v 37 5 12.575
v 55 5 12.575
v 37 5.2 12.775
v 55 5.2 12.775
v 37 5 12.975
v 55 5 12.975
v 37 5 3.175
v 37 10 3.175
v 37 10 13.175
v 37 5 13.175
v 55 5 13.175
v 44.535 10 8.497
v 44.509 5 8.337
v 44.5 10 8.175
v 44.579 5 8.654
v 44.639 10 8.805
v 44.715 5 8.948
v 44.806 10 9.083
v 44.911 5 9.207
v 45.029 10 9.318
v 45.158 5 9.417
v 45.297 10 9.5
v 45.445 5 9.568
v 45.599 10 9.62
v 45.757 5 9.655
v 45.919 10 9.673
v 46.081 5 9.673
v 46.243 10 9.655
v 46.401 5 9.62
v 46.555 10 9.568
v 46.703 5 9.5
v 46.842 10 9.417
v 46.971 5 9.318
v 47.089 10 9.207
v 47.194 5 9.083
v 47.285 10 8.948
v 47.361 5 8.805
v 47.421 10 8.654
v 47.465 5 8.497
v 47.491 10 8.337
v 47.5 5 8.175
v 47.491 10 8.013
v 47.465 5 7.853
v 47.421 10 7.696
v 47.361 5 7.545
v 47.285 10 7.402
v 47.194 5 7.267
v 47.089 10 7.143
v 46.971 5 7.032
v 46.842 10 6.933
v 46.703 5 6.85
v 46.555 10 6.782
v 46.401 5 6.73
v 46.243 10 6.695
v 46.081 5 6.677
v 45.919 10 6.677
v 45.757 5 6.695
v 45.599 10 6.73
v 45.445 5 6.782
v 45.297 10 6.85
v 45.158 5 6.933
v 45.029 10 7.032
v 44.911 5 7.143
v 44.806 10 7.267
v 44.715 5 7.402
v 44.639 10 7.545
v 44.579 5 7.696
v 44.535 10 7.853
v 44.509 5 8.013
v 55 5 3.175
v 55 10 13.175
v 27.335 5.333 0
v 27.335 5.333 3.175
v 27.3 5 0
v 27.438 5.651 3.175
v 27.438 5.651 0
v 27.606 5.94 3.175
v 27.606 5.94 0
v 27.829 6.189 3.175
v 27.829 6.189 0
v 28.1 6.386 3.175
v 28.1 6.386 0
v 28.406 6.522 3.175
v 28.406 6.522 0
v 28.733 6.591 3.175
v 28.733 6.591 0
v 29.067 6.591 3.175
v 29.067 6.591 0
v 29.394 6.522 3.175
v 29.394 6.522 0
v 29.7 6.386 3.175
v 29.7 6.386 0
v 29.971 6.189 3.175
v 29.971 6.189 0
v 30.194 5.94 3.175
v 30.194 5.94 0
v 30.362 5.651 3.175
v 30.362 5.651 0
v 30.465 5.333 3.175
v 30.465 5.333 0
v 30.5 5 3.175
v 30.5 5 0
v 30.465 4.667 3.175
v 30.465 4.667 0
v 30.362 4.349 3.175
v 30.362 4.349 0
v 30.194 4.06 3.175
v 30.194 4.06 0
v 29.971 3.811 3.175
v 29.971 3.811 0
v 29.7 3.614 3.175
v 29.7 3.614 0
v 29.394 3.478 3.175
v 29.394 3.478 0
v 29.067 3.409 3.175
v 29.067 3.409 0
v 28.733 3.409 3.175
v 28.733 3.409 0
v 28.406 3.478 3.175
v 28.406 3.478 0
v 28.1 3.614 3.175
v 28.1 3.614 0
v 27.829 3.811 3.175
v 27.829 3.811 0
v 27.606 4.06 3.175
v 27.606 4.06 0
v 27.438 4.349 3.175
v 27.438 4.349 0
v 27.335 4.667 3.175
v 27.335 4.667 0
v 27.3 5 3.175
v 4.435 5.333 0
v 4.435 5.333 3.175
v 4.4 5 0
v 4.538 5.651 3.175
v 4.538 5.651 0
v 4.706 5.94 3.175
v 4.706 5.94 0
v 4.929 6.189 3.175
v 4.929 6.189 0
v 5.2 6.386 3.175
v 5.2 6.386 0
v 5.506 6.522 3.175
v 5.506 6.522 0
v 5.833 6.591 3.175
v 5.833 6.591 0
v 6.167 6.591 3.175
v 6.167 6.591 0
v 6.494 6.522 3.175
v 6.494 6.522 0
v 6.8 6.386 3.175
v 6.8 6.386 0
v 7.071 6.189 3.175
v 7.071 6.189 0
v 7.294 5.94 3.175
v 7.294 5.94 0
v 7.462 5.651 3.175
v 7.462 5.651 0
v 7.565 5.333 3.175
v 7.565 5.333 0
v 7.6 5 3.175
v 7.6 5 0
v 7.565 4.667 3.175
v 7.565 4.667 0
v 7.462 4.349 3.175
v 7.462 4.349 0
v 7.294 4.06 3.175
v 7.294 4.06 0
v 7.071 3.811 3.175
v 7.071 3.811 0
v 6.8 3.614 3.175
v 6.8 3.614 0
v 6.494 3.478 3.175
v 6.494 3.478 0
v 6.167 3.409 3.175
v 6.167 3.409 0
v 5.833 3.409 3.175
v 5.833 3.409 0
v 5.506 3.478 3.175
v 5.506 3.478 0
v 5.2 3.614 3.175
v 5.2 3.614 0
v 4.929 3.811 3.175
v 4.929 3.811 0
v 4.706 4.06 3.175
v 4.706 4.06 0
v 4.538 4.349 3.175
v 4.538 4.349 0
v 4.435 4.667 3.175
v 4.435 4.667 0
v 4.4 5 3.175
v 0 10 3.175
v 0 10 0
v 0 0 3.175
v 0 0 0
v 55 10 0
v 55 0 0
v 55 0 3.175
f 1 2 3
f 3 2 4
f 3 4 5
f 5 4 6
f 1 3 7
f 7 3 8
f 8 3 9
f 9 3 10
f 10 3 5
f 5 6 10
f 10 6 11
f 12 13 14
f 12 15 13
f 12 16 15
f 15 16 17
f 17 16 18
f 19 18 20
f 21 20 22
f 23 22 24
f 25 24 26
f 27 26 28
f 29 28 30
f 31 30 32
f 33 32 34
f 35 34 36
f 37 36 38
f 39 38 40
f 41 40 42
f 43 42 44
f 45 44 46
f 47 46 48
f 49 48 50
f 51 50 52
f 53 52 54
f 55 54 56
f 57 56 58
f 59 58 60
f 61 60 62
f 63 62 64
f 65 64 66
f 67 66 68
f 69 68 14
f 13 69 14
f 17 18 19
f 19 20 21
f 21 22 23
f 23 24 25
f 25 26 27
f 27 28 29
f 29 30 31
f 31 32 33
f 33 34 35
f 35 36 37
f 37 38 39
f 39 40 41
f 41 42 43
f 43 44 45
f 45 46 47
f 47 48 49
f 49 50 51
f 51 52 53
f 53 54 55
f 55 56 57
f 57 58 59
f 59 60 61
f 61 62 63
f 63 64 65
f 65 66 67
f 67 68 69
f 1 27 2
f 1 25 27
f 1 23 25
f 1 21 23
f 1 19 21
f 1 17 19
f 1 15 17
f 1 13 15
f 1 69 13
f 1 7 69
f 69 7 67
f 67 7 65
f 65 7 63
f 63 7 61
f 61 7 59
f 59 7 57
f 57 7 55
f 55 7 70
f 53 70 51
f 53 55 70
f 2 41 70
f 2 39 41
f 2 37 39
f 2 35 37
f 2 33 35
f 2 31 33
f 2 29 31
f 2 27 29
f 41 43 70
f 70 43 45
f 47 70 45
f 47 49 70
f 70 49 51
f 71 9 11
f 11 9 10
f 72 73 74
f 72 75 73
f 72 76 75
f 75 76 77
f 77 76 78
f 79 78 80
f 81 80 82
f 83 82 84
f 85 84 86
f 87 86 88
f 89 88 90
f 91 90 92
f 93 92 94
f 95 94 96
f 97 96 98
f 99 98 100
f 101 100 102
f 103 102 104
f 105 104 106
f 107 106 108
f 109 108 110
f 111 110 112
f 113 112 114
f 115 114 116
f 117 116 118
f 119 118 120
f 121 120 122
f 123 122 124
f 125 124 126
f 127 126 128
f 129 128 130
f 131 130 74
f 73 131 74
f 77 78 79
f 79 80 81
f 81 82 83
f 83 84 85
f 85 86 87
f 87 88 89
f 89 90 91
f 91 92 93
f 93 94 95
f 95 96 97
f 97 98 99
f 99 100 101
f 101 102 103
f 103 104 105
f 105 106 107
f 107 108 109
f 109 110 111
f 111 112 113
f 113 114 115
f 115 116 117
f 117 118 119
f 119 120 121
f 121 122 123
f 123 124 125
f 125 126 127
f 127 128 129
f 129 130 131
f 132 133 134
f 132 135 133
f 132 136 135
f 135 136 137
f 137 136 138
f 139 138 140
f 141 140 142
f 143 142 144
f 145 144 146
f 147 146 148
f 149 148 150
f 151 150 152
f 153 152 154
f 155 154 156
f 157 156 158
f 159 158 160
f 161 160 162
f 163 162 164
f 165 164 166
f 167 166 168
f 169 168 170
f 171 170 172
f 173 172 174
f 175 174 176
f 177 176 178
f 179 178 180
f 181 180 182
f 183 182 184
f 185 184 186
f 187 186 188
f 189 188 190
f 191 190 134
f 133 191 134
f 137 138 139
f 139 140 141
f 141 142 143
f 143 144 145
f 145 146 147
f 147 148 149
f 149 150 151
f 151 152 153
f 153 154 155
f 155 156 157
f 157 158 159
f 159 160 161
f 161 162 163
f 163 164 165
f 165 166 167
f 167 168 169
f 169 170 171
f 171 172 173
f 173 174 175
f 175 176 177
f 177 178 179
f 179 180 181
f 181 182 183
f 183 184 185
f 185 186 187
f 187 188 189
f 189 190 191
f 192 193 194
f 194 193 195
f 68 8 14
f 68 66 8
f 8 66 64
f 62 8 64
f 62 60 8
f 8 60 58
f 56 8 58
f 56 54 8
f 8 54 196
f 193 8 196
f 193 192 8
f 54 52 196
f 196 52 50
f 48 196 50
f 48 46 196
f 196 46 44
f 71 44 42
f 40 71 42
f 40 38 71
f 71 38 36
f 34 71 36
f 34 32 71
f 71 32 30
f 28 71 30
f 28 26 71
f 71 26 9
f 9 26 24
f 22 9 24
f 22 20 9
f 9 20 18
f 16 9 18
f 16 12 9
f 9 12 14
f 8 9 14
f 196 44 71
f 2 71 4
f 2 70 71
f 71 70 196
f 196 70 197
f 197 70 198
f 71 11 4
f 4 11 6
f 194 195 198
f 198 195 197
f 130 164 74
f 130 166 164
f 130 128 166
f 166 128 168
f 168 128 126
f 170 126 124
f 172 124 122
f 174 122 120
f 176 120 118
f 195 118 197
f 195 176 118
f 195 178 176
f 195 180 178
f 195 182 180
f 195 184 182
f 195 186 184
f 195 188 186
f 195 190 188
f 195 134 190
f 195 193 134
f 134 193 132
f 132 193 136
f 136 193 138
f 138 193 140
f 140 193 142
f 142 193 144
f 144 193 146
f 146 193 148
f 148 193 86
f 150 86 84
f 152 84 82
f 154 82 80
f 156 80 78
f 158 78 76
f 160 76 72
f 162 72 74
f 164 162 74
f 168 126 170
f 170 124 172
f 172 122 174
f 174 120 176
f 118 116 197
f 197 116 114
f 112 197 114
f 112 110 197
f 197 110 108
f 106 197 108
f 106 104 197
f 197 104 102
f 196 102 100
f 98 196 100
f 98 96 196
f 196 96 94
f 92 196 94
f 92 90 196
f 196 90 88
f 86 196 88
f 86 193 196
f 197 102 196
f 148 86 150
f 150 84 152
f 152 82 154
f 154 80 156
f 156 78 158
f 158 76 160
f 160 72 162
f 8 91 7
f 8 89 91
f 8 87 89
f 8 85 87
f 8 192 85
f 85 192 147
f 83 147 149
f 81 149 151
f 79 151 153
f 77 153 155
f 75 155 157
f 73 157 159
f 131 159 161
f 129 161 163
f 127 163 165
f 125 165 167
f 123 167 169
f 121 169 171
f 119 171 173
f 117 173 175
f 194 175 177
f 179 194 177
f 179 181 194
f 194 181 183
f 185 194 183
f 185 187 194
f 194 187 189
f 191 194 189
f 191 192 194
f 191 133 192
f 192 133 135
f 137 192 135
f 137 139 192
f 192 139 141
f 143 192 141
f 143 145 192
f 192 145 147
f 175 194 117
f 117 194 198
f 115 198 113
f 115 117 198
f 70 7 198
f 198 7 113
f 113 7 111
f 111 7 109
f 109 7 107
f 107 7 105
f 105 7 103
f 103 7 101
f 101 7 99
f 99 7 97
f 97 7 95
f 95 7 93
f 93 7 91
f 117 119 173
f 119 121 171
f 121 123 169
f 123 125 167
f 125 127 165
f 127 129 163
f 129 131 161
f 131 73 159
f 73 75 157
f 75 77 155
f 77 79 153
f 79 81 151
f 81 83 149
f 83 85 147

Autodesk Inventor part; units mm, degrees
ref_plane "YZ Plane" through (0, 0, 0) normal (1, 0, 0) x (0, 1, 0)
ref_plane "XZ Plane" through (0, 0, 0) normal (0, 1, 0) x (-1, 0, 0)
ref_plane "XY Plane" through (0, 0, 0) normal (0, 0, 1) x (1, 0, 0)
sketch "Sketch1" plane through (0, 0, 0) normal (0, 0, 1) x (1, 0, 0)
  line L0 (0, 0) -> (55, 0)
  line L1 (55, 0) -> (55, 10)
  line L2 (55, 10) -> (0, 10)
  line L3 (0, 10) -> (0, 0)
  dimension "d0" = 55
  dimension "d1" = 10
extrude "Extrusion1" add sketch "Sketch1" along normal blind 3.175
sketch "Sketch3" plane through (0, 0, 3.175) normal (0, 0, 1) x (1, 0, 0)
  line L0 (37, 5) -> (55, 5) projected
  line L1 (0, 10) -> (55, 10) projected
  line L2 (0, 0) -> (6, 0) construction
  line L3 (6, 0) -> (6, 10) construction
  line L4 (6, 10) -> (0, 10) construction
  line L5 (0, 10) -> (0, 0) construction
  line L6 (-4.3576, 5) -> (33.1549, 5) construction
  line L7 (6, 0) -> (28.9, 0) construction
  line L8 (28.9, 0) -> (28.9, 6.8677) construction
  line L9 (28.9, 6.8677) -> (6, 6.8677) construction
  line L10 (6, 6.8677) -> (6, 0) construction
  point P0 (6, 5)
  point P1 (28.9, 5)
  dimension "d8" = 6
  dimension "d9" = 22.9
hole "Hole1" at (6, 5, 3.175) at (28.9, 5, 3.175) direction (0, 0, -1) diameter 3.2 end through all
sketch "Sketch6" plane through (0, 0, 3.175) normal (0, 0, 1) x (1, 0, 0)
  line L0 (55, 10) -> (37, 10)
  line L1 (37, 10) -> (37, 5)
  line L2 (37, 5) -> (55, 5)
  line L3 (55, 5) -> (55, 10)
  dimension "d32" = 18
  dimension "d33" = 5
extrude "Extrusion4" add sketch "Sketch6" along normal blind 10
sketch "Sketch7" plane through (37, 5, 3.175) normal (0, -1, 0) x (1, 0, 0)
  line L0 (18, 0) -> (18, 10) projected
  line L1 (9, 13.1417) -> (9, -6.2593) construction
  line L2 (-2.325, 5) -> (23.2178, 5) construction
  point P0 (-37, -3.175)
  point P1 (9, 5)
hole "Hole3" at (46, 5, 8.175) direction (0, 1, 0) diameter 3 end through all
thread "Thread2" size "M3x0.5" class "6H" standard "ISO Metric profile" full length
sketch "Sketch8" plane through (55, 0, 0) normal (1, 0, 0) x (0, 0, -1)
  line L0 (-3.175, 5) -> (-13.175, 5) projected
  line L1 (-13.175, 5) -> (-12.775, 5) construction
  line L2 (-12.775, 5) -> (-12.775, 5.2) construction
  line L3 (-12.775, 5.2) -> (-13.175, 5.2) construction
  line L4 (-13.175, 5.2) -> (-13.175, 5) construction
  line L5 (-12.775, 5.2) -> (-12.575, 5)
  line L6 (-12.775, 5.2) -> (-12.4922, 5.2) construction
  line L7 (-12.775, 5.2) -> (-12.975, 5)
  line L8 (-12.775, 5.2) -> (-12.4922, 5.2) construction
  line L9 (-12.975, 5) -> (-12.575, 5)
  dimension "d45" = 0.4
  dimension "d46" = 0.2
  dimension "d47" = 45
  dimension "d48" = 135
extrude "Extrusion5" cut sketch "Sketch8" against normal through all
properties part number "alpha_omega_holder"
